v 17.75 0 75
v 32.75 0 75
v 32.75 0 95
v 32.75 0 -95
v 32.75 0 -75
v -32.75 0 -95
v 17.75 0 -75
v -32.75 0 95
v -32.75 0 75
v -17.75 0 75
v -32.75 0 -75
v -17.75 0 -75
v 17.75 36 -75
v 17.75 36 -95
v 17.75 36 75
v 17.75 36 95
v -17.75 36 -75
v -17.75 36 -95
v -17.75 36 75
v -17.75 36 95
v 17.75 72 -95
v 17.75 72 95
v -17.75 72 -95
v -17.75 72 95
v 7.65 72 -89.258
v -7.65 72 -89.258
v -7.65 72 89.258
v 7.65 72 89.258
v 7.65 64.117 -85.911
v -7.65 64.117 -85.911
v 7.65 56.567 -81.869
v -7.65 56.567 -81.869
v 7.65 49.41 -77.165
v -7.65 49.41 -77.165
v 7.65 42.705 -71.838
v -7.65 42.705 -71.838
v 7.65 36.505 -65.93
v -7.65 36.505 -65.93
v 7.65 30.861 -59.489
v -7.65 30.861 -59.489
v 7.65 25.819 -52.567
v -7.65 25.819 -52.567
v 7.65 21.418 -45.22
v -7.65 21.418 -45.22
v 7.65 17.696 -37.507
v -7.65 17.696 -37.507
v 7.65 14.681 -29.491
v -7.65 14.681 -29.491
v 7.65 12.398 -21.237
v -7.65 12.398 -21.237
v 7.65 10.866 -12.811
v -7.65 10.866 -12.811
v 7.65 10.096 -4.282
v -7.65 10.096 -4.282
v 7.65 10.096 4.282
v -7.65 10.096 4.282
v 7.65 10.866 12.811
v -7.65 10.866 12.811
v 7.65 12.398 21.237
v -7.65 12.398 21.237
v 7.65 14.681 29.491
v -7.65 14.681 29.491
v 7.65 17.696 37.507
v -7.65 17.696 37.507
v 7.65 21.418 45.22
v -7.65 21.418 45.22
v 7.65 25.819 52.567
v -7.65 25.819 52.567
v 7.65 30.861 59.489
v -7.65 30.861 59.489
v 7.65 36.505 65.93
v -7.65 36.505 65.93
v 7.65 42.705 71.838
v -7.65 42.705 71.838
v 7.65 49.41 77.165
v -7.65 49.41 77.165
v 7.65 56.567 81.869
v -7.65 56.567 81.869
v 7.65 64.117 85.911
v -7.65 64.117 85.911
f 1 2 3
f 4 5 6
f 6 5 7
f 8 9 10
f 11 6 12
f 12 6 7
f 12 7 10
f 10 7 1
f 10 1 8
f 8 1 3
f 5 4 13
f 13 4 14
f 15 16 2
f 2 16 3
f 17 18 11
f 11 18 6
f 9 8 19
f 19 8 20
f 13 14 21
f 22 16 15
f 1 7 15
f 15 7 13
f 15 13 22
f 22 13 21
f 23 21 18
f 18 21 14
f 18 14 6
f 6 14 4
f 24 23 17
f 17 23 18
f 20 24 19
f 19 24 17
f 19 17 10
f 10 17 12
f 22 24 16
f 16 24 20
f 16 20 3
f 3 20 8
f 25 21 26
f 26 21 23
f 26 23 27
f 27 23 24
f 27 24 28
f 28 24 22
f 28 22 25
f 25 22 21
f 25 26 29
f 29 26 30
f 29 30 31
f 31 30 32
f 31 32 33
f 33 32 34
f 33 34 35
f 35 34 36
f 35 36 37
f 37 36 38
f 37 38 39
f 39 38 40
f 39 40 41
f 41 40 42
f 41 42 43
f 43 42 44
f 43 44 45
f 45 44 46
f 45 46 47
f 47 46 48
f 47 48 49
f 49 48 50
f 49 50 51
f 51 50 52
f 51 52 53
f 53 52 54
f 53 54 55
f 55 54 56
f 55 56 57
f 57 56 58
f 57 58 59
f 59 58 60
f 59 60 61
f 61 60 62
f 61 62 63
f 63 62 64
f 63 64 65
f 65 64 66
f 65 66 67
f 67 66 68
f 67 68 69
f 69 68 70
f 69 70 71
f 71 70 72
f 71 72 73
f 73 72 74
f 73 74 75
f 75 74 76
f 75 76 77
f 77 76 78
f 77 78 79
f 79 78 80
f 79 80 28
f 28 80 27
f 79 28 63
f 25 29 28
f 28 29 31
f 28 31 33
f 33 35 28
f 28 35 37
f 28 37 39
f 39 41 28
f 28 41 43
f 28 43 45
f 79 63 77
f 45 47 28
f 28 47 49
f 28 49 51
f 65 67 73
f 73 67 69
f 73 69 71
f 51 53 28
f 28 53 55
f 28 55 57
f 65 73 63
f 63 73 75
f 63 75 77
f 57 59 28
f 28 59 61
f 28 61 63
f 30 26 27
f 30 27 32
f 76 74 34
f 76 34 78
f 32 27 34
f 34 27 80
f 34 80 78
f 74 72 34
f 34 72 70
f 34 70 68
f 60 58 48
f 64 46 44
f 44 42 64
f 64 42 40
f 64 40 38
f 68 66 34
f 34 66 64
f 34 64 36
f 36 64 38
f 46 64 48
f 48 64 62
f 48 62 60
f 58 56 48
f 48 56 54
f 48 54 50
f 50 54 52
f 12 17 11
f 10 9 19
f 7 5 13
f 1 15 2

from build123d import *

# Parameters (mm, degrees)
SKETCH1_W                = 35.5
SKETCH1_H                = 190
BOSS_EXTRUDE1_DEPTH      = 72
CUT_EXTRUDE15_DEPTH      = 7.65
CUT_EXTRUDE15_DEPTH_BACK = 7.65
SKETCH2_R                = 95.25
BOSS_EXTRUDE5_DEPTH      = 95
BOSS_EXTRUDE5_DEPTH_BACK = 95
SKETCH7_W                = 41.37003368
SKETCH7_H                = 150
CUT_EXTRUDE16_DEPTH      = 45
SKETCH8_W                = 72.584654809
SKETCH8_H                = 150
CUT_EXTRUDE17_DEPTH      = 45


with BuildPart() as part:
    # Sketch1 → Boss-Extrude1 (new body)
    with BuildSketch(Plane(origin=(0, 0, 0), x_dir=(1, 0, 0), z_dir=(0, 1, 0))):
        Rectangle(SKETCH1_W, SKETCH1_H)
    extrude(amount=BOSS_EXTRUDE1_DEPTH)

    # Sketch2 → Cut-Extrude15 (cut, two sides: drawn at the far end of the back side and taken through both)
    with BuildSketch(Plane(origin=(0, 0, 0), x_dir=(0, 0, -1), z_dir=(1, 0, 0)).offset(-CUT_EXTRUDE15_DEPTH_BACK)):
        with Locations((0, 105.25)):
            Circle(SKETCH2_R)
    extrude(amount=CUT_EXTRUDE15_DEPTH + CUT_EXTRUDE15_DEPTH_BACK, mode=Mode.SUBTRACT)

    # Sketch6 → Boss-Extrude5 (add, two sides: drawn at the far end of the back side and taken through both)
    with BuildSketch(Plane.XY.offset(-BOSS_EXTRUDE5_DEPTH_BACK)):
        Polygon((-17.75, 0), (-32.75, 0), (-17.75, 36), align=None)
        Polygon((17.75, 0), (32.75, 0), (17.75, 36), align=None)
    extrude(amount=BOSS_EXTRUDE5_DEPTH + BOSS_EXTRUDE5_DEPTH_BACK)

    # Sketch7 → Cut-Extrude16 (cut)
    with BuildSketch(Plane(origin=(0, 0, 0), x_dir=(1, 0, 0), z_dir=(0, 1, 0))):
        with Locations((-38.43501684, 0)):
            Rectangle(SKETCH7_W, SKETCH7_H)
    extrude(amount=CUT_EXTRUDE16_DEPTH, mode=Mode.SUBTRACT)

    # Sketch8 → Cut-Extrude17 (cut)
    with BuildSketch(Plane(origin=(0, 0, 0), x_dir=(1, 0, 0), z_dir=(0, 1, 0))):
        with Locations((54.042327404, 0)):
            Rectangle(SKETCH8_W, SKETCH8_H)
    extrude(amount=CUT_EXTRUDE17_DEPTH, mode=Mode.SUBTRACT)


solid = part.part
